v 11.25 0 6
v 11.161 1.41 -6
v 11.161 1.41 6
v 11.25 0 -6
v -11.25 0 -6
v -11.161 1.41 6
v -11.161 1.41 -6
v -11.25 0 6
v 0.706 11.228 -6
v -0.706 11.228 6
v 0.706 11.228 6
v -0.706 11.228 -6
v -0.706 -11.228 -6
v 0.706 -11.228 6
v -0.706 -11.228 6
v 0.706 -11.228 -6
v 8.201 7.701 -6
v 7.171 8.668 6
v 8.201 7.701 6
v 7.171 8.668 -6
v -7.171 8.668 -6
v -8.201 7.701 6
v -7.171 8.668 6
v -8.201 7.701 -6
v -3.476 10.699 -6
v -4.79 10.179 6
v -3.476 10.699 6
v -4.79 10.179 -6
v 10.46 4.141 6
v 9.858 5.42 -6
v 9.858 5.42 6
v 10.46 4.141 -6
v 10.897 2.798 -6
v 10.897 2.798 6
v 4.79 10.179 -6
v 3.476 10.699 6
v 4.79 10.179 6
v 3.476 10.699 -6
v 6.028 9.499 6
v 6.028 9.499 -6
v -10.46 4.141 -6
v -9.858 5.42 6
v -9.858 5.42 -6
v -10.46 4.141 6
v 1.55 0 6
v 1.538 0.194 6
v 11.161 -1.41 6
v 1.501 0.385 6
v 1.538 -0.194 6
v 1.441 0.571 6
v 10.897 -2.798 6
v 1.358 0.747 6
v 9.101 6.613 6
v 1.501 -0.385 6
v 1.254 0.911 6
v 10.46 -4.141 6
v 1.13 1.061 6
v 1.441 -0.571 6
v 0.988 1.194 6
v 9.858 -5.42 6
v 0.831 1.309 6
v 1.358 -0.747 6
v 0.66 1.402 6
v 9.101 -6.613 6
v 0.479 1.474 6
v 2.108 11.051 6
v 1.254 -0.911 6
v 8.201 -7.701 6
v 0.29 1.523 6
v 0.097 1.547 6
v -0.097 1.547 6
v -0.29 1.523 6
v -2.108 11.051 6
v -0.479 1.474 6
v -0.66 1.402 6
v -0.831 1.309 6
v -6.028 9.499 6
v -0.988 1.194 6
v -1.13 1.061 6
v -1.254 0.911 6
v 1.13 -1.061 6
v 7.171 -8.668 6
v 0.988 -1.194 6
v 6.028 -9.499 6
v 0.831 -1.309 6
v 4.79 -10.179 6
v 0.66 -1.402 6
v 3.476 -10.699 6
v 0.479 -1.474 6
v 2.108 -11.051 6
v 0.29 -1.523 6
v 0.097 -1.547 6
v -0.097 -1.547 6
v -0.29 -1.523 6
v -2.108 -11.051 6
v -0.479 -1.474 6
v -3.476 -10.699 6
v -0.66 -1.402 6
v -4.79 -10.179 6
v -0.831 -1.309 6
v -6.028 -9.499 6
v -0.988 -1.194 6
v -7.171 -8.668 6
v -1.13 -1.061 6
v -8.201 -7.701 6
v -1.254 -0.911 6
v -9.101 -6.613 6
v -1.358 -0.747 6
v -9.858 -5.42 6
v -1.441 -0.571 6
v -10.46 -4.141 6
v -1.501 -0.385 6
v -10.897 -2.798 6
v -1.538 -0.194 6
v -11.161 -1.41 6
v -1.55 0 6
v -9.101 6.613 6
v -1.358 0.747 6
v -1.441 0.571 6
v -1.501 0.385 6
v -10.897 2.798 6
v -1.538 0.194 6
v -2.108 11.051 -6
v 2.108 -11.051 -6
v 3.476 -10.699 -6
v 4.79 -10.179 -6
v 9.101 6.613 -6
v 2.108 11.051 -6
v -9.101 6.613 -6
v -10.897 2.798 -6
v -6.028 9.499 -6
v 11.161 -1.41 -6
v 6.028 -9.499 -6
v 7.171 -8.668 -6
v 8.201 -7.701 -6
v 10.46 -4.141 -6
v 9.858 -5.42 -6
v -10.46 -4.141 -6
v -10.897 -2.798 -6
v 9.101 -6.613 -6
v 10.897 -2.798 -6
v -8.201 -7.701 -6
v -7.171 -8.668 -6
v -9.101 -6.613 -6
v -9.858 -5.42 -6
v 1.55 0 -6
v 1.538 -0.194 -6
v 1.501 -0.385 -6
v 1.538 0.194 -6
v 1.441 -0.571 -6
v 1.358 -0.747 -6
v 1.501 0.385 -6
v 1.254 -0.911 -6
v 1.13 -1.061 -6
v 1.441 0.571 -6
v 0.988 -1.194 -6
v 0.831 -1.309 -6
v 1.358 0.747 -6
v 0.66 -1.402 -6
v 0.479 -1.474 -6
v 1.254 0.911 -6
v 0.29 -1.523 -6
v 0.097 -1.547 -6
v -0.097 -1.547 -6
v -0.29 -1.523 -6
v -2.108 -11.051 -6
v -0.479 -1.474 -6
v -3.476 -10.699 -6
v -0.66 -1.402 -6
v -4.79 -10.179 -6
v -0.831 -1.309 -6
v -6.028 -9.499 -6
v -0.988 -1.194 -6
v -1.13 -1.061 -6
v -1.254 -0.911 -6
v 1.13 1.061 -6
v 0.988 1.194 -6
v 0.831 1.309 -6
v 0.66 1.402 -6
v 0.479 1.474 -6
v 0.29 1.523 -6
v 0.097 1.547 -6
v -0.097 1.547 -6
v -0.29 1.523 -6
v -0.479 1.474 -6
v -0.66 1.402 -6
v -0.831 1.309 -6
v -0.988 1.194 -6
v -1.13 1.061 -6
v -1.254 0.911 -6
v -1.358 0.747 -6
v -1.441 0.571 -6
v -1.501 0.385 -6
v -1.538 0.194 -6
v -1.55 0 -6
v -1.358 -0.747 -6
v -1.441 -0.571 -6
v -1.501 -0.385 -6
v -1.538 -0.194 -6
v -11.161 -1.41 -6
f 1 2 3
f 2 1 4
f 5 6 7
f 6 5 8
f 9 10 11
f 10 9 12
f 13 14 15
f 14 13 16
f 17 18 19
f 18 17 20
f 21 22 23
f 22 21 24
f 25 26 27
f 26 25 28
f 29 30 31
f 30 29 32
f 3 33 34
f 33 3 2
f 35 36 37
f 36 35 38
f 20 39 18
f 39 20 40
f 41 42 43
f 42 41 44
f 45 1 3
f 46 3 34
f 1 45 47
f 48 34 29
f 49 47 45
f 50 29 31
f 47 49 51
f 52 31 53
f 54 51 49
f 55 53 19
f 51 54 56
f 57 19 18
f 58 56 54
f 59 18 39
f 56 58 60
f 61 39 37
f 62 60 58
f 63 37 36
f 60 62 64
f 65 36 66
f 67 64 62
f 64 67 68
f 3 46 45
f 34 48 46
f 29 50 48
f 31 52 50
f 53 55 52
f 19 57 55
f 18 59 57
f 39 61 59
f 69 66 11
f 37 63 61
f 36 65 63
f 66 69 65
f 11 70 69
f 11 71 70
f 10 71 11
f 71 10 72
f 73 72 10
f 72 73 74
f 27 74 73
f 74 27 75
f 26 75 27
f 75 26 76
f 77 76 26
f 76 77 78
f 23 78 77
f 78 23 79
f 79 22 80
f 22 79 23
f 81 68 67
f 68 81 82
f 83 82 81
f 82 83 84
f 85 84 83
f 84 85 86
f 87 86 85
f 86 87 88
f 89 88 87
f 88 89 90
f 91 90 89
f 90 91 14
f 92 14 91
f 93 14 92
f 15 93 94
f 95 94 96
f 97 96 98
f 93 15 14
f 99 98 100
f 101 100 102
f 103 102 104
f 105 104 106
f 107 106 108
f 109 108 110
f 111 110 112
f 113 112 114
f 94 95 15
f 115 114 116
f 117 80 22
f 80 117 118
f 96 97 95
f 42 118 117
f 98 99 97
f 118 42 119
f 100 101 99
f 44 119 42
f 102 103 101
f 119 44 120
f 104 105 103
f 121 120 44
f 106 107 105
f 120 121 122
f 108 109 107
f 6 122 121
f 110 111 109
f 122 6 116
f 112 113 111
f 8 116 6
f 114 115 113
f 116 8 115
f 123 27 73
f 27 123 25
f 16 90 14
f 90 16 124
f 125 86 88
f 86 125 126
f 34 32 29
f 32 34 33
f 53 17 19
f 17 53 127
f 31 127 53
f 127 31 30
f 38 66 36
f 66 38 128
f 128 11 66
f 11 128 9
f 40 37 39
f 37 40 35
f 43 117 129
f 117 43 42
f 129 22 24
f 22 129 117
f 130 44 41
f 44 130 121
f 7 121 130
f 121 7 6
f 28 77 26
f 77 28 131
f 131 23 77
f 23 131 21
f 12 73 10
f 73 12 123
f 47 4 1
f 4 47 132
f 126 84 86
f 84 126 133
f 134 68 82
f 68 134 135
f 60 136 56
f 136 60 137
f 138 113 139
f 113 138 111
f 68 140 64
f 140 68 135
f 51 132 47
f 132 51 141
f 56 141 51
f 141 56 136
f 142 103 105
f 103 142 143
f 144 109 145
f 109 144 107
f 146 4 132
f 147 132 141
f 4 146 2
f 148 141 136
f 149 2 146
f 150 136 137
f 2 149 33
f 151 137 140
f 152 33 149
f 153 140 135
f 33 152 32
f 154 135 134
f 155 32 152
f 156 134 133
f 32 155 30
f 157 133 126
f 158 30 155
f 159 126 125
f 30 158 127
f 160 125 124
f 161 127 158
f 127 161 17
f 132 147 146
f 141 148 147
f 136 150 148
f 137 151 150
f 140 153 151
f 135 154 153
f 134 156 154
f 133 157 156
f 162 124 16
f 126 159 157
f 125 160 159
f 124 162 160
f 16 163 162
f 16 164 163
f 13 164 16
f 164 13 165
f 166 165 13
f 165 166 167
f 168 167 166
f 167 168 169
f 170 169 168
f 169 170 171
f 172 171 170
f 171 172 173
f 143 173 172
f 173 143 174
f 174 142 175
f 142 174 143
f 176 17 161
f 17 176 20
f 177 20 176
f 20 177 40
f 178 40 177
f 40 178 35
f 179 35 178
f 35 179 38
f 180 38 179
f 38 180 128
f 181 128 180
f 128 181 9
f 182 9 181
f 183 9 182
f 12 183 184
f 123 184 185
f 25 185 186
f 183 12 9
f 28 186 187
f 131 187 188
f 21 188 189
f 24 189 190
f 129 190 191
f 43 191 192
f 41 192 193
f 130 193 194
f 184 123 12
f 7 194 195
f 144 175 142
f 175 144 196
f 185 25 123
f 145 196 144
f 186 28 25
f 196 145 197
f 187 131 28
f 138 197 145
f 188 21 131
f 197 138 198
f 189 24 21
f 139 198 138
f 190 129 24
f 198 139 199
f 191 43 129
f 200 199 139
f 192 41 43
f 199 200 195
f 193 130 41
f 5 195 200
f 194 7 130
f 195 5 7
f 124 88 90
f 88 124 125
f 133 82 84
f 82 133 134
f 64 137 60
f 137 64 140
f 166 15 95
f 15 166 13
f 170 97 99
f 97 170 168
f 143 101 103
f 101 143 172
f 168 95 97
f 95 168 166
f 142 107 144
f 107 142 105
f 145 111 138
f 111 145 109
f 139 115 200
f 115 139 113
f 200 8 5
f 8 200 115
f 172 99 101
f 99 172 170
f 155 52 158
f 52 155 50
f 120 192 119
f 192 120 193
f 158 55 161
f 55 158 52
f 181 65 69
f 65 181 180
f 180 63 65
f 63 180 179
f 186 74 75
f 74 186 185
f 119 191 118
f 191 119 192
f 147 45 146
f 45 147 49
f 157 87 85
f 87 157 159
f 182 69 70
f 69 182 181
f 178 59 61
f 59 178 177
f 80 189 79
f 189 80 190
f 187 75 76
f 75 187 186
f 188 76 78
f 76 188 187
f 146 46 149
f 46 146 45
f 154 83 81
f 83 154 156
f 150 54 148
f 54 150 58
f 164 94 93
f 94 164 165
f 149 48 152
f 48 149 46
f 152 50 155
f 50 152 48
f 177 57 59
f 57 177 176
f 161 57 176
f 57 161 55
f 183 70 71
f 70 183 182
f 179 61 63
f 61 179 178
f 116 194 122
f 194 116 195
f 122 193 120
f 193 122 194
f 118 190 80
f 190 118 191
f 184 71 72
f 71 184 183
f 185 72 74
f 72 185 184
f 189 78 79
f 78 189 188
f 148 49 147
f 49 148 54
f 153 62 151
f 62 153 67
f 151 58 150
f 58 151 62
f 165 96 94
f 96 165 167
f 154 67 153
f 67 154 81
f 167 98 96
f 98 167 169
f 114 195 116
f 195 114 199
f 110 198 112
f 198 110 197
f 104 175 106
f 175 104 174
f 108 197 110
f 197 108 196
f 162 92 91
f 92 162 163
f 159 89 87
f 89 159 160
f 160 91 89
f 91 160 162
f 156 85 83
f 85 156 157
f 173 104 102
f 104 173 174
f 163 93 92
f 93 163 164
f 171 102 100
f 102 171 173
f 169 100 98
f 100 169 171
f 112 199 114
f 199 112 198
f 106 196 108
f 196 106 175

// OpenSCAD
$fn = 50;


difference() {
	union() {
		translate(v = [0, 0, -6.0000000000]) {
			cylinder(h = 12, r = 11.2500000000);
		}
	}
	union() {
		translate(v = [0, 0, -100.0000000000]) {
			cylinder(h = 200, r = 1.5500000000);
		}
	}
}
